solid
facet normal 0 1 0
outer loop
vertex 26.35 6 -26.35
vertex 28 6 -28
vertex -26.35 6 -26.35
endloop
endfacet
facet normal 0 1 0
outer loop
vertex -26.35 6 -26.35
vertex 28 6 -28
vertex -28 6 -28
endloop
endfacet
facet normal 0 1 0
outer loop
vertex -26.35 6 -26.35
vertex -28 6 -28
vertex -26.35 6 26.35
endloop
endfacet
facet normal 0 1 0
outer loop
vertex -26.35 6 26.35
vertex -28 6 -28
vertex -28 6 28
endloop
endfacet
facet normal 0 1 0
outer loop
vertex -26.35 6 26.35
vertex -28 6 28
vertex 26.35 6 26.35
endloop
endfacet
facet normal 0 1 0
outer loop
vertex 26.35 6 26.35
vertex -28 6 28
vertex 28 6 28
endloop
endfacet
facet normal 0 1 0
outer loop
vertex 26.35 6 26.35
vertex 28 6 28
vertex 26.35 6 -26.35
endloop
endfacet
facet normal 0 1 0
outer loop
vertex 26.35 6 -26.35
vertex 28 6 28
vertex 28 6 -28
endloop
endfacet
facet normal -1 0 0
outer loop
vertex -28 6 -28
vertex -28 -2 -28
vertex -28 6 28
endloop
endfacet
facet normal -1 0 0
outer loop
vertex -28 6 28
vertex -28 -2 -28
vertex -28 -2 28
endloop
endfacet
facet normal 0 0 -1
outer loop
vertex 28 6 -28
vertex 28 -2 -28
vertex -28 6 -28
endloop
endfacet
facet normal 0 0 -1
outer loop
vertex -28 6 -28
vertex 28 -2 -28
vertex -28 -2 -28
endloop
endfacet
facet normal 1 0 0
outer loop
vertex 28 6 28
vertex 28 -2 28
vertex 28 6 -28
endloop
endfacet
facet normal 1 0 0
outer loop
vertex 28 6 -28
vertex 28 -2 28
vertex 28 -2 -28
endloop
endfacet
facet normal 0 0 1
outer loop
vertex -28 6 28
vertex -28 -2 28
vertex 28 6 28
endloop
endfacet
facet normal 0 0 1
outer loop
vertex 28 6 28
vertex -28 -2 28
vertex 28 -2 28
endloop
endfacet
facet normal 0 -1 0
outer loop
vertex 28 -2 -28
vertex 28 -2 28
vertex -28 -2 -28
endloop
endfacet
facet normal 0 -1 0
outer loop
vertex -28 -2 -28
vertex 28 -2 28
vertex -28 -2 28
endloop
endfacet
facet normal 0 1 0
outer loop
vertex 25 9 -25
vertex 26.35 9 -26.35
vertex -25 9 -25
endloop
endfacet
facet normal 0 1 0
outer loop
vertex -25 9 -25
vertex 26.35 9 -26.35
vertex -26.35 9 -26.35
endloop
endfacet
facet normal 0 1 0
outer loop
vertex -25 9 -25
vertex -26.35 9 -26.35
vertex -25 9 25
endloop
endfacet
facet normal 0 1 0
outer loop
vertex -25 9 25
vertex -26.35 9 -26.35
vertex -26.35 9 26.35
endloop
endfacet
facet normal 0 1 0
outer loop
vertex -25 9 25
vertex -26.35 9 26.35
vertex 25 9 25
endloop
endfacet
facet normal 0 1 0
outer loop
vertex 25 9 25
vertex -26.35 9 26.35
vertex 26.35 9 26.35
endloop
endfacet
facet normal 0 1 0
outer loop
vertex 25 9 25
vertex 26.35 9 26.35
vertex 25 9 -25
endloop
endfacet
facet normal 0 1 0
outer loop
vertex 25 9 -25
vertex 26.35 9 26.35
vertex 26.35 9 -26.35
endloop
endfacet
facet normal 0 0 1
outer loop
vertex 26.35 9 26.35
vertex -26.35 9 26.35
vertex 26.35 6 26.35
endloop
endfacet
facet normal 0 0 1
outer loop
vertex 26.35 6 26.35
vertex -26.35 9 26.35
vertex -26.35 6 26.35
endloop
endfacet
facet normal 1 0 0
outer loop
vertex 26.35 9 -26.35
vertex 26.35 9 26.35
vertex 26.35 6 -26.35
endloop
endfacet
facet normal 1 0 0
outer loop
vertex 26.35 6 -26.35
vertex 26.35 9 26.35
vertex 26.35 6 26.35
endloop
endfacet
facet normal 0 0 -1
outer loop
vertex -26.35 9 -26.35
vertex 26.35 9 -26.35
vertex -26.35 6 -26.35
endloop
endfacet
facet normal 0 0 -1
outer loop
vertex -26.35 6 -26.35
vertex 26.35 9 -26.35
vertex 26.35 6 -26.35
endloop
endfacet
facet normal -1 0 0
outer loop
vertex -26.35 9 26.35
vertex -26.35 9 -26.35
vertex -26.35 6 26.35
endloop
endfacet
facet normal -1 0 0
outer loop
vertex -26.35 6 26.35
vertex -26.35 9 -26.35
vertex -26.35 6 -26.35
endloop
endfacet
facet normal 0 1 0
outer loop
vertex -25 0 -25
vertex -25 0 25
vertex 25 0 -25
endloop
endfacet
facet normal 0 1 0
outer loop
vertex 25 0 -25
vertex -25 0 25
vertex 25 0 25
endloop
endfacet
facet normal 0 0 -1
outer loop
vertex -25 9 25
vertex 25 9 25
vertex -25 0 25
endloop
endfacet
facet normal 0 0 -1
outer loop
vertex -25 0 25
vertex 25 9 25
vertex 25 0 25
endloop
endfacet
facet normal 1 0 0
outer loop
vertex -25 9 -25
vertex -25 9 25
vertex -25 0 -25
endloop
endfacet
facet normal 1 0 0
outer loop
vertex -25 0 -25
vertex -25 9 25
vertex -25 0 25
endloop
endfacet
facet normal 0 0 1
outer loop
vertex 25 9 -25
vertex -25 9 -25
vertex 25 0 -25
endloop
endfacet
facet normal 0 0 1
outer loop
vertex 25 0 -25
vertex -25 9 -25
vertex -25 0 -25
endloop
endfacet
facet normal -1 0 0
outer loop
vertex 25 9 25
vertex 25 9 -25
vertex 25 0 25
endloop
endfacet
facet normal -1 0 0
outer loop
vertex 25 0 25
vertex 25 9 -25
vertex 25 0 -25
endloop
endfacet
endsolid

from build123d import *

# Parameters (mm, degrees)
SKETCH1_W           = 56
SKETCH1_H           = 56
BOSS_EXTRUDE1_DEPTH = 2
SKETCH1_3_W         = 56
SKETCH1_3_H         = 56
SKETCH1_3_W_2       = 50
SKETCH1_3_H_2       = 50
BOSS_EXTRUDE2_DEPTH = 6
SKETCH2_W           = 52.7
SKETCH2_H           = 52.7
SKETCH2_W_2         = 50
SKETCH2_H_2         = 50
BOSS_EXTRUDE3_DEPTH = 3


with BuildPart() as part:
    # Sketch1 → Boss-Extrude1 (new body)
    with BuildSketch(Plane(origin=(0, 0, 0), x_dir=(1, 0, 0), z_dir=(0, 1, 0))):
        Rectangle(SKETCH1_W, SKETCH1_H)
    extrude(amount=-BOSS_EXTRUDE1_DEPTH)

    # Sketch1<3> → Boss-Extrude2 (add)
    with BuildSketch(Plane(origin=(0, 0, 0), x_dir=(1, 0, 0), z_dir=(0, 1, 0))):
        Rectangle(SKETCH1_3_W, SKETCH1_3_H)
        Rectangle(SKETCH1_3_W_2, SKETCH1_3_H_2, mode=Mode.SUBTRACT)
    extrude(amount=BOSS_EXTRUDE2_DEPTH)

    # Sketch2 → Boss-Extrude3 (add)
    with BuildSketch(Plane(origin=(0, 6, 0), x_dir=(1, 0, 0), z_dir=(0, 1, 0))):
        Rectangle(SKETCH2_W, SKETCH2_H)
        Rectangle(SKETCH2_W_2, SKETCH2_H_2, mode=Mode.SUBTRACT)
    extrude(amount=BOSS_EXTRUDE3_DEPTH)


solid = part.part
